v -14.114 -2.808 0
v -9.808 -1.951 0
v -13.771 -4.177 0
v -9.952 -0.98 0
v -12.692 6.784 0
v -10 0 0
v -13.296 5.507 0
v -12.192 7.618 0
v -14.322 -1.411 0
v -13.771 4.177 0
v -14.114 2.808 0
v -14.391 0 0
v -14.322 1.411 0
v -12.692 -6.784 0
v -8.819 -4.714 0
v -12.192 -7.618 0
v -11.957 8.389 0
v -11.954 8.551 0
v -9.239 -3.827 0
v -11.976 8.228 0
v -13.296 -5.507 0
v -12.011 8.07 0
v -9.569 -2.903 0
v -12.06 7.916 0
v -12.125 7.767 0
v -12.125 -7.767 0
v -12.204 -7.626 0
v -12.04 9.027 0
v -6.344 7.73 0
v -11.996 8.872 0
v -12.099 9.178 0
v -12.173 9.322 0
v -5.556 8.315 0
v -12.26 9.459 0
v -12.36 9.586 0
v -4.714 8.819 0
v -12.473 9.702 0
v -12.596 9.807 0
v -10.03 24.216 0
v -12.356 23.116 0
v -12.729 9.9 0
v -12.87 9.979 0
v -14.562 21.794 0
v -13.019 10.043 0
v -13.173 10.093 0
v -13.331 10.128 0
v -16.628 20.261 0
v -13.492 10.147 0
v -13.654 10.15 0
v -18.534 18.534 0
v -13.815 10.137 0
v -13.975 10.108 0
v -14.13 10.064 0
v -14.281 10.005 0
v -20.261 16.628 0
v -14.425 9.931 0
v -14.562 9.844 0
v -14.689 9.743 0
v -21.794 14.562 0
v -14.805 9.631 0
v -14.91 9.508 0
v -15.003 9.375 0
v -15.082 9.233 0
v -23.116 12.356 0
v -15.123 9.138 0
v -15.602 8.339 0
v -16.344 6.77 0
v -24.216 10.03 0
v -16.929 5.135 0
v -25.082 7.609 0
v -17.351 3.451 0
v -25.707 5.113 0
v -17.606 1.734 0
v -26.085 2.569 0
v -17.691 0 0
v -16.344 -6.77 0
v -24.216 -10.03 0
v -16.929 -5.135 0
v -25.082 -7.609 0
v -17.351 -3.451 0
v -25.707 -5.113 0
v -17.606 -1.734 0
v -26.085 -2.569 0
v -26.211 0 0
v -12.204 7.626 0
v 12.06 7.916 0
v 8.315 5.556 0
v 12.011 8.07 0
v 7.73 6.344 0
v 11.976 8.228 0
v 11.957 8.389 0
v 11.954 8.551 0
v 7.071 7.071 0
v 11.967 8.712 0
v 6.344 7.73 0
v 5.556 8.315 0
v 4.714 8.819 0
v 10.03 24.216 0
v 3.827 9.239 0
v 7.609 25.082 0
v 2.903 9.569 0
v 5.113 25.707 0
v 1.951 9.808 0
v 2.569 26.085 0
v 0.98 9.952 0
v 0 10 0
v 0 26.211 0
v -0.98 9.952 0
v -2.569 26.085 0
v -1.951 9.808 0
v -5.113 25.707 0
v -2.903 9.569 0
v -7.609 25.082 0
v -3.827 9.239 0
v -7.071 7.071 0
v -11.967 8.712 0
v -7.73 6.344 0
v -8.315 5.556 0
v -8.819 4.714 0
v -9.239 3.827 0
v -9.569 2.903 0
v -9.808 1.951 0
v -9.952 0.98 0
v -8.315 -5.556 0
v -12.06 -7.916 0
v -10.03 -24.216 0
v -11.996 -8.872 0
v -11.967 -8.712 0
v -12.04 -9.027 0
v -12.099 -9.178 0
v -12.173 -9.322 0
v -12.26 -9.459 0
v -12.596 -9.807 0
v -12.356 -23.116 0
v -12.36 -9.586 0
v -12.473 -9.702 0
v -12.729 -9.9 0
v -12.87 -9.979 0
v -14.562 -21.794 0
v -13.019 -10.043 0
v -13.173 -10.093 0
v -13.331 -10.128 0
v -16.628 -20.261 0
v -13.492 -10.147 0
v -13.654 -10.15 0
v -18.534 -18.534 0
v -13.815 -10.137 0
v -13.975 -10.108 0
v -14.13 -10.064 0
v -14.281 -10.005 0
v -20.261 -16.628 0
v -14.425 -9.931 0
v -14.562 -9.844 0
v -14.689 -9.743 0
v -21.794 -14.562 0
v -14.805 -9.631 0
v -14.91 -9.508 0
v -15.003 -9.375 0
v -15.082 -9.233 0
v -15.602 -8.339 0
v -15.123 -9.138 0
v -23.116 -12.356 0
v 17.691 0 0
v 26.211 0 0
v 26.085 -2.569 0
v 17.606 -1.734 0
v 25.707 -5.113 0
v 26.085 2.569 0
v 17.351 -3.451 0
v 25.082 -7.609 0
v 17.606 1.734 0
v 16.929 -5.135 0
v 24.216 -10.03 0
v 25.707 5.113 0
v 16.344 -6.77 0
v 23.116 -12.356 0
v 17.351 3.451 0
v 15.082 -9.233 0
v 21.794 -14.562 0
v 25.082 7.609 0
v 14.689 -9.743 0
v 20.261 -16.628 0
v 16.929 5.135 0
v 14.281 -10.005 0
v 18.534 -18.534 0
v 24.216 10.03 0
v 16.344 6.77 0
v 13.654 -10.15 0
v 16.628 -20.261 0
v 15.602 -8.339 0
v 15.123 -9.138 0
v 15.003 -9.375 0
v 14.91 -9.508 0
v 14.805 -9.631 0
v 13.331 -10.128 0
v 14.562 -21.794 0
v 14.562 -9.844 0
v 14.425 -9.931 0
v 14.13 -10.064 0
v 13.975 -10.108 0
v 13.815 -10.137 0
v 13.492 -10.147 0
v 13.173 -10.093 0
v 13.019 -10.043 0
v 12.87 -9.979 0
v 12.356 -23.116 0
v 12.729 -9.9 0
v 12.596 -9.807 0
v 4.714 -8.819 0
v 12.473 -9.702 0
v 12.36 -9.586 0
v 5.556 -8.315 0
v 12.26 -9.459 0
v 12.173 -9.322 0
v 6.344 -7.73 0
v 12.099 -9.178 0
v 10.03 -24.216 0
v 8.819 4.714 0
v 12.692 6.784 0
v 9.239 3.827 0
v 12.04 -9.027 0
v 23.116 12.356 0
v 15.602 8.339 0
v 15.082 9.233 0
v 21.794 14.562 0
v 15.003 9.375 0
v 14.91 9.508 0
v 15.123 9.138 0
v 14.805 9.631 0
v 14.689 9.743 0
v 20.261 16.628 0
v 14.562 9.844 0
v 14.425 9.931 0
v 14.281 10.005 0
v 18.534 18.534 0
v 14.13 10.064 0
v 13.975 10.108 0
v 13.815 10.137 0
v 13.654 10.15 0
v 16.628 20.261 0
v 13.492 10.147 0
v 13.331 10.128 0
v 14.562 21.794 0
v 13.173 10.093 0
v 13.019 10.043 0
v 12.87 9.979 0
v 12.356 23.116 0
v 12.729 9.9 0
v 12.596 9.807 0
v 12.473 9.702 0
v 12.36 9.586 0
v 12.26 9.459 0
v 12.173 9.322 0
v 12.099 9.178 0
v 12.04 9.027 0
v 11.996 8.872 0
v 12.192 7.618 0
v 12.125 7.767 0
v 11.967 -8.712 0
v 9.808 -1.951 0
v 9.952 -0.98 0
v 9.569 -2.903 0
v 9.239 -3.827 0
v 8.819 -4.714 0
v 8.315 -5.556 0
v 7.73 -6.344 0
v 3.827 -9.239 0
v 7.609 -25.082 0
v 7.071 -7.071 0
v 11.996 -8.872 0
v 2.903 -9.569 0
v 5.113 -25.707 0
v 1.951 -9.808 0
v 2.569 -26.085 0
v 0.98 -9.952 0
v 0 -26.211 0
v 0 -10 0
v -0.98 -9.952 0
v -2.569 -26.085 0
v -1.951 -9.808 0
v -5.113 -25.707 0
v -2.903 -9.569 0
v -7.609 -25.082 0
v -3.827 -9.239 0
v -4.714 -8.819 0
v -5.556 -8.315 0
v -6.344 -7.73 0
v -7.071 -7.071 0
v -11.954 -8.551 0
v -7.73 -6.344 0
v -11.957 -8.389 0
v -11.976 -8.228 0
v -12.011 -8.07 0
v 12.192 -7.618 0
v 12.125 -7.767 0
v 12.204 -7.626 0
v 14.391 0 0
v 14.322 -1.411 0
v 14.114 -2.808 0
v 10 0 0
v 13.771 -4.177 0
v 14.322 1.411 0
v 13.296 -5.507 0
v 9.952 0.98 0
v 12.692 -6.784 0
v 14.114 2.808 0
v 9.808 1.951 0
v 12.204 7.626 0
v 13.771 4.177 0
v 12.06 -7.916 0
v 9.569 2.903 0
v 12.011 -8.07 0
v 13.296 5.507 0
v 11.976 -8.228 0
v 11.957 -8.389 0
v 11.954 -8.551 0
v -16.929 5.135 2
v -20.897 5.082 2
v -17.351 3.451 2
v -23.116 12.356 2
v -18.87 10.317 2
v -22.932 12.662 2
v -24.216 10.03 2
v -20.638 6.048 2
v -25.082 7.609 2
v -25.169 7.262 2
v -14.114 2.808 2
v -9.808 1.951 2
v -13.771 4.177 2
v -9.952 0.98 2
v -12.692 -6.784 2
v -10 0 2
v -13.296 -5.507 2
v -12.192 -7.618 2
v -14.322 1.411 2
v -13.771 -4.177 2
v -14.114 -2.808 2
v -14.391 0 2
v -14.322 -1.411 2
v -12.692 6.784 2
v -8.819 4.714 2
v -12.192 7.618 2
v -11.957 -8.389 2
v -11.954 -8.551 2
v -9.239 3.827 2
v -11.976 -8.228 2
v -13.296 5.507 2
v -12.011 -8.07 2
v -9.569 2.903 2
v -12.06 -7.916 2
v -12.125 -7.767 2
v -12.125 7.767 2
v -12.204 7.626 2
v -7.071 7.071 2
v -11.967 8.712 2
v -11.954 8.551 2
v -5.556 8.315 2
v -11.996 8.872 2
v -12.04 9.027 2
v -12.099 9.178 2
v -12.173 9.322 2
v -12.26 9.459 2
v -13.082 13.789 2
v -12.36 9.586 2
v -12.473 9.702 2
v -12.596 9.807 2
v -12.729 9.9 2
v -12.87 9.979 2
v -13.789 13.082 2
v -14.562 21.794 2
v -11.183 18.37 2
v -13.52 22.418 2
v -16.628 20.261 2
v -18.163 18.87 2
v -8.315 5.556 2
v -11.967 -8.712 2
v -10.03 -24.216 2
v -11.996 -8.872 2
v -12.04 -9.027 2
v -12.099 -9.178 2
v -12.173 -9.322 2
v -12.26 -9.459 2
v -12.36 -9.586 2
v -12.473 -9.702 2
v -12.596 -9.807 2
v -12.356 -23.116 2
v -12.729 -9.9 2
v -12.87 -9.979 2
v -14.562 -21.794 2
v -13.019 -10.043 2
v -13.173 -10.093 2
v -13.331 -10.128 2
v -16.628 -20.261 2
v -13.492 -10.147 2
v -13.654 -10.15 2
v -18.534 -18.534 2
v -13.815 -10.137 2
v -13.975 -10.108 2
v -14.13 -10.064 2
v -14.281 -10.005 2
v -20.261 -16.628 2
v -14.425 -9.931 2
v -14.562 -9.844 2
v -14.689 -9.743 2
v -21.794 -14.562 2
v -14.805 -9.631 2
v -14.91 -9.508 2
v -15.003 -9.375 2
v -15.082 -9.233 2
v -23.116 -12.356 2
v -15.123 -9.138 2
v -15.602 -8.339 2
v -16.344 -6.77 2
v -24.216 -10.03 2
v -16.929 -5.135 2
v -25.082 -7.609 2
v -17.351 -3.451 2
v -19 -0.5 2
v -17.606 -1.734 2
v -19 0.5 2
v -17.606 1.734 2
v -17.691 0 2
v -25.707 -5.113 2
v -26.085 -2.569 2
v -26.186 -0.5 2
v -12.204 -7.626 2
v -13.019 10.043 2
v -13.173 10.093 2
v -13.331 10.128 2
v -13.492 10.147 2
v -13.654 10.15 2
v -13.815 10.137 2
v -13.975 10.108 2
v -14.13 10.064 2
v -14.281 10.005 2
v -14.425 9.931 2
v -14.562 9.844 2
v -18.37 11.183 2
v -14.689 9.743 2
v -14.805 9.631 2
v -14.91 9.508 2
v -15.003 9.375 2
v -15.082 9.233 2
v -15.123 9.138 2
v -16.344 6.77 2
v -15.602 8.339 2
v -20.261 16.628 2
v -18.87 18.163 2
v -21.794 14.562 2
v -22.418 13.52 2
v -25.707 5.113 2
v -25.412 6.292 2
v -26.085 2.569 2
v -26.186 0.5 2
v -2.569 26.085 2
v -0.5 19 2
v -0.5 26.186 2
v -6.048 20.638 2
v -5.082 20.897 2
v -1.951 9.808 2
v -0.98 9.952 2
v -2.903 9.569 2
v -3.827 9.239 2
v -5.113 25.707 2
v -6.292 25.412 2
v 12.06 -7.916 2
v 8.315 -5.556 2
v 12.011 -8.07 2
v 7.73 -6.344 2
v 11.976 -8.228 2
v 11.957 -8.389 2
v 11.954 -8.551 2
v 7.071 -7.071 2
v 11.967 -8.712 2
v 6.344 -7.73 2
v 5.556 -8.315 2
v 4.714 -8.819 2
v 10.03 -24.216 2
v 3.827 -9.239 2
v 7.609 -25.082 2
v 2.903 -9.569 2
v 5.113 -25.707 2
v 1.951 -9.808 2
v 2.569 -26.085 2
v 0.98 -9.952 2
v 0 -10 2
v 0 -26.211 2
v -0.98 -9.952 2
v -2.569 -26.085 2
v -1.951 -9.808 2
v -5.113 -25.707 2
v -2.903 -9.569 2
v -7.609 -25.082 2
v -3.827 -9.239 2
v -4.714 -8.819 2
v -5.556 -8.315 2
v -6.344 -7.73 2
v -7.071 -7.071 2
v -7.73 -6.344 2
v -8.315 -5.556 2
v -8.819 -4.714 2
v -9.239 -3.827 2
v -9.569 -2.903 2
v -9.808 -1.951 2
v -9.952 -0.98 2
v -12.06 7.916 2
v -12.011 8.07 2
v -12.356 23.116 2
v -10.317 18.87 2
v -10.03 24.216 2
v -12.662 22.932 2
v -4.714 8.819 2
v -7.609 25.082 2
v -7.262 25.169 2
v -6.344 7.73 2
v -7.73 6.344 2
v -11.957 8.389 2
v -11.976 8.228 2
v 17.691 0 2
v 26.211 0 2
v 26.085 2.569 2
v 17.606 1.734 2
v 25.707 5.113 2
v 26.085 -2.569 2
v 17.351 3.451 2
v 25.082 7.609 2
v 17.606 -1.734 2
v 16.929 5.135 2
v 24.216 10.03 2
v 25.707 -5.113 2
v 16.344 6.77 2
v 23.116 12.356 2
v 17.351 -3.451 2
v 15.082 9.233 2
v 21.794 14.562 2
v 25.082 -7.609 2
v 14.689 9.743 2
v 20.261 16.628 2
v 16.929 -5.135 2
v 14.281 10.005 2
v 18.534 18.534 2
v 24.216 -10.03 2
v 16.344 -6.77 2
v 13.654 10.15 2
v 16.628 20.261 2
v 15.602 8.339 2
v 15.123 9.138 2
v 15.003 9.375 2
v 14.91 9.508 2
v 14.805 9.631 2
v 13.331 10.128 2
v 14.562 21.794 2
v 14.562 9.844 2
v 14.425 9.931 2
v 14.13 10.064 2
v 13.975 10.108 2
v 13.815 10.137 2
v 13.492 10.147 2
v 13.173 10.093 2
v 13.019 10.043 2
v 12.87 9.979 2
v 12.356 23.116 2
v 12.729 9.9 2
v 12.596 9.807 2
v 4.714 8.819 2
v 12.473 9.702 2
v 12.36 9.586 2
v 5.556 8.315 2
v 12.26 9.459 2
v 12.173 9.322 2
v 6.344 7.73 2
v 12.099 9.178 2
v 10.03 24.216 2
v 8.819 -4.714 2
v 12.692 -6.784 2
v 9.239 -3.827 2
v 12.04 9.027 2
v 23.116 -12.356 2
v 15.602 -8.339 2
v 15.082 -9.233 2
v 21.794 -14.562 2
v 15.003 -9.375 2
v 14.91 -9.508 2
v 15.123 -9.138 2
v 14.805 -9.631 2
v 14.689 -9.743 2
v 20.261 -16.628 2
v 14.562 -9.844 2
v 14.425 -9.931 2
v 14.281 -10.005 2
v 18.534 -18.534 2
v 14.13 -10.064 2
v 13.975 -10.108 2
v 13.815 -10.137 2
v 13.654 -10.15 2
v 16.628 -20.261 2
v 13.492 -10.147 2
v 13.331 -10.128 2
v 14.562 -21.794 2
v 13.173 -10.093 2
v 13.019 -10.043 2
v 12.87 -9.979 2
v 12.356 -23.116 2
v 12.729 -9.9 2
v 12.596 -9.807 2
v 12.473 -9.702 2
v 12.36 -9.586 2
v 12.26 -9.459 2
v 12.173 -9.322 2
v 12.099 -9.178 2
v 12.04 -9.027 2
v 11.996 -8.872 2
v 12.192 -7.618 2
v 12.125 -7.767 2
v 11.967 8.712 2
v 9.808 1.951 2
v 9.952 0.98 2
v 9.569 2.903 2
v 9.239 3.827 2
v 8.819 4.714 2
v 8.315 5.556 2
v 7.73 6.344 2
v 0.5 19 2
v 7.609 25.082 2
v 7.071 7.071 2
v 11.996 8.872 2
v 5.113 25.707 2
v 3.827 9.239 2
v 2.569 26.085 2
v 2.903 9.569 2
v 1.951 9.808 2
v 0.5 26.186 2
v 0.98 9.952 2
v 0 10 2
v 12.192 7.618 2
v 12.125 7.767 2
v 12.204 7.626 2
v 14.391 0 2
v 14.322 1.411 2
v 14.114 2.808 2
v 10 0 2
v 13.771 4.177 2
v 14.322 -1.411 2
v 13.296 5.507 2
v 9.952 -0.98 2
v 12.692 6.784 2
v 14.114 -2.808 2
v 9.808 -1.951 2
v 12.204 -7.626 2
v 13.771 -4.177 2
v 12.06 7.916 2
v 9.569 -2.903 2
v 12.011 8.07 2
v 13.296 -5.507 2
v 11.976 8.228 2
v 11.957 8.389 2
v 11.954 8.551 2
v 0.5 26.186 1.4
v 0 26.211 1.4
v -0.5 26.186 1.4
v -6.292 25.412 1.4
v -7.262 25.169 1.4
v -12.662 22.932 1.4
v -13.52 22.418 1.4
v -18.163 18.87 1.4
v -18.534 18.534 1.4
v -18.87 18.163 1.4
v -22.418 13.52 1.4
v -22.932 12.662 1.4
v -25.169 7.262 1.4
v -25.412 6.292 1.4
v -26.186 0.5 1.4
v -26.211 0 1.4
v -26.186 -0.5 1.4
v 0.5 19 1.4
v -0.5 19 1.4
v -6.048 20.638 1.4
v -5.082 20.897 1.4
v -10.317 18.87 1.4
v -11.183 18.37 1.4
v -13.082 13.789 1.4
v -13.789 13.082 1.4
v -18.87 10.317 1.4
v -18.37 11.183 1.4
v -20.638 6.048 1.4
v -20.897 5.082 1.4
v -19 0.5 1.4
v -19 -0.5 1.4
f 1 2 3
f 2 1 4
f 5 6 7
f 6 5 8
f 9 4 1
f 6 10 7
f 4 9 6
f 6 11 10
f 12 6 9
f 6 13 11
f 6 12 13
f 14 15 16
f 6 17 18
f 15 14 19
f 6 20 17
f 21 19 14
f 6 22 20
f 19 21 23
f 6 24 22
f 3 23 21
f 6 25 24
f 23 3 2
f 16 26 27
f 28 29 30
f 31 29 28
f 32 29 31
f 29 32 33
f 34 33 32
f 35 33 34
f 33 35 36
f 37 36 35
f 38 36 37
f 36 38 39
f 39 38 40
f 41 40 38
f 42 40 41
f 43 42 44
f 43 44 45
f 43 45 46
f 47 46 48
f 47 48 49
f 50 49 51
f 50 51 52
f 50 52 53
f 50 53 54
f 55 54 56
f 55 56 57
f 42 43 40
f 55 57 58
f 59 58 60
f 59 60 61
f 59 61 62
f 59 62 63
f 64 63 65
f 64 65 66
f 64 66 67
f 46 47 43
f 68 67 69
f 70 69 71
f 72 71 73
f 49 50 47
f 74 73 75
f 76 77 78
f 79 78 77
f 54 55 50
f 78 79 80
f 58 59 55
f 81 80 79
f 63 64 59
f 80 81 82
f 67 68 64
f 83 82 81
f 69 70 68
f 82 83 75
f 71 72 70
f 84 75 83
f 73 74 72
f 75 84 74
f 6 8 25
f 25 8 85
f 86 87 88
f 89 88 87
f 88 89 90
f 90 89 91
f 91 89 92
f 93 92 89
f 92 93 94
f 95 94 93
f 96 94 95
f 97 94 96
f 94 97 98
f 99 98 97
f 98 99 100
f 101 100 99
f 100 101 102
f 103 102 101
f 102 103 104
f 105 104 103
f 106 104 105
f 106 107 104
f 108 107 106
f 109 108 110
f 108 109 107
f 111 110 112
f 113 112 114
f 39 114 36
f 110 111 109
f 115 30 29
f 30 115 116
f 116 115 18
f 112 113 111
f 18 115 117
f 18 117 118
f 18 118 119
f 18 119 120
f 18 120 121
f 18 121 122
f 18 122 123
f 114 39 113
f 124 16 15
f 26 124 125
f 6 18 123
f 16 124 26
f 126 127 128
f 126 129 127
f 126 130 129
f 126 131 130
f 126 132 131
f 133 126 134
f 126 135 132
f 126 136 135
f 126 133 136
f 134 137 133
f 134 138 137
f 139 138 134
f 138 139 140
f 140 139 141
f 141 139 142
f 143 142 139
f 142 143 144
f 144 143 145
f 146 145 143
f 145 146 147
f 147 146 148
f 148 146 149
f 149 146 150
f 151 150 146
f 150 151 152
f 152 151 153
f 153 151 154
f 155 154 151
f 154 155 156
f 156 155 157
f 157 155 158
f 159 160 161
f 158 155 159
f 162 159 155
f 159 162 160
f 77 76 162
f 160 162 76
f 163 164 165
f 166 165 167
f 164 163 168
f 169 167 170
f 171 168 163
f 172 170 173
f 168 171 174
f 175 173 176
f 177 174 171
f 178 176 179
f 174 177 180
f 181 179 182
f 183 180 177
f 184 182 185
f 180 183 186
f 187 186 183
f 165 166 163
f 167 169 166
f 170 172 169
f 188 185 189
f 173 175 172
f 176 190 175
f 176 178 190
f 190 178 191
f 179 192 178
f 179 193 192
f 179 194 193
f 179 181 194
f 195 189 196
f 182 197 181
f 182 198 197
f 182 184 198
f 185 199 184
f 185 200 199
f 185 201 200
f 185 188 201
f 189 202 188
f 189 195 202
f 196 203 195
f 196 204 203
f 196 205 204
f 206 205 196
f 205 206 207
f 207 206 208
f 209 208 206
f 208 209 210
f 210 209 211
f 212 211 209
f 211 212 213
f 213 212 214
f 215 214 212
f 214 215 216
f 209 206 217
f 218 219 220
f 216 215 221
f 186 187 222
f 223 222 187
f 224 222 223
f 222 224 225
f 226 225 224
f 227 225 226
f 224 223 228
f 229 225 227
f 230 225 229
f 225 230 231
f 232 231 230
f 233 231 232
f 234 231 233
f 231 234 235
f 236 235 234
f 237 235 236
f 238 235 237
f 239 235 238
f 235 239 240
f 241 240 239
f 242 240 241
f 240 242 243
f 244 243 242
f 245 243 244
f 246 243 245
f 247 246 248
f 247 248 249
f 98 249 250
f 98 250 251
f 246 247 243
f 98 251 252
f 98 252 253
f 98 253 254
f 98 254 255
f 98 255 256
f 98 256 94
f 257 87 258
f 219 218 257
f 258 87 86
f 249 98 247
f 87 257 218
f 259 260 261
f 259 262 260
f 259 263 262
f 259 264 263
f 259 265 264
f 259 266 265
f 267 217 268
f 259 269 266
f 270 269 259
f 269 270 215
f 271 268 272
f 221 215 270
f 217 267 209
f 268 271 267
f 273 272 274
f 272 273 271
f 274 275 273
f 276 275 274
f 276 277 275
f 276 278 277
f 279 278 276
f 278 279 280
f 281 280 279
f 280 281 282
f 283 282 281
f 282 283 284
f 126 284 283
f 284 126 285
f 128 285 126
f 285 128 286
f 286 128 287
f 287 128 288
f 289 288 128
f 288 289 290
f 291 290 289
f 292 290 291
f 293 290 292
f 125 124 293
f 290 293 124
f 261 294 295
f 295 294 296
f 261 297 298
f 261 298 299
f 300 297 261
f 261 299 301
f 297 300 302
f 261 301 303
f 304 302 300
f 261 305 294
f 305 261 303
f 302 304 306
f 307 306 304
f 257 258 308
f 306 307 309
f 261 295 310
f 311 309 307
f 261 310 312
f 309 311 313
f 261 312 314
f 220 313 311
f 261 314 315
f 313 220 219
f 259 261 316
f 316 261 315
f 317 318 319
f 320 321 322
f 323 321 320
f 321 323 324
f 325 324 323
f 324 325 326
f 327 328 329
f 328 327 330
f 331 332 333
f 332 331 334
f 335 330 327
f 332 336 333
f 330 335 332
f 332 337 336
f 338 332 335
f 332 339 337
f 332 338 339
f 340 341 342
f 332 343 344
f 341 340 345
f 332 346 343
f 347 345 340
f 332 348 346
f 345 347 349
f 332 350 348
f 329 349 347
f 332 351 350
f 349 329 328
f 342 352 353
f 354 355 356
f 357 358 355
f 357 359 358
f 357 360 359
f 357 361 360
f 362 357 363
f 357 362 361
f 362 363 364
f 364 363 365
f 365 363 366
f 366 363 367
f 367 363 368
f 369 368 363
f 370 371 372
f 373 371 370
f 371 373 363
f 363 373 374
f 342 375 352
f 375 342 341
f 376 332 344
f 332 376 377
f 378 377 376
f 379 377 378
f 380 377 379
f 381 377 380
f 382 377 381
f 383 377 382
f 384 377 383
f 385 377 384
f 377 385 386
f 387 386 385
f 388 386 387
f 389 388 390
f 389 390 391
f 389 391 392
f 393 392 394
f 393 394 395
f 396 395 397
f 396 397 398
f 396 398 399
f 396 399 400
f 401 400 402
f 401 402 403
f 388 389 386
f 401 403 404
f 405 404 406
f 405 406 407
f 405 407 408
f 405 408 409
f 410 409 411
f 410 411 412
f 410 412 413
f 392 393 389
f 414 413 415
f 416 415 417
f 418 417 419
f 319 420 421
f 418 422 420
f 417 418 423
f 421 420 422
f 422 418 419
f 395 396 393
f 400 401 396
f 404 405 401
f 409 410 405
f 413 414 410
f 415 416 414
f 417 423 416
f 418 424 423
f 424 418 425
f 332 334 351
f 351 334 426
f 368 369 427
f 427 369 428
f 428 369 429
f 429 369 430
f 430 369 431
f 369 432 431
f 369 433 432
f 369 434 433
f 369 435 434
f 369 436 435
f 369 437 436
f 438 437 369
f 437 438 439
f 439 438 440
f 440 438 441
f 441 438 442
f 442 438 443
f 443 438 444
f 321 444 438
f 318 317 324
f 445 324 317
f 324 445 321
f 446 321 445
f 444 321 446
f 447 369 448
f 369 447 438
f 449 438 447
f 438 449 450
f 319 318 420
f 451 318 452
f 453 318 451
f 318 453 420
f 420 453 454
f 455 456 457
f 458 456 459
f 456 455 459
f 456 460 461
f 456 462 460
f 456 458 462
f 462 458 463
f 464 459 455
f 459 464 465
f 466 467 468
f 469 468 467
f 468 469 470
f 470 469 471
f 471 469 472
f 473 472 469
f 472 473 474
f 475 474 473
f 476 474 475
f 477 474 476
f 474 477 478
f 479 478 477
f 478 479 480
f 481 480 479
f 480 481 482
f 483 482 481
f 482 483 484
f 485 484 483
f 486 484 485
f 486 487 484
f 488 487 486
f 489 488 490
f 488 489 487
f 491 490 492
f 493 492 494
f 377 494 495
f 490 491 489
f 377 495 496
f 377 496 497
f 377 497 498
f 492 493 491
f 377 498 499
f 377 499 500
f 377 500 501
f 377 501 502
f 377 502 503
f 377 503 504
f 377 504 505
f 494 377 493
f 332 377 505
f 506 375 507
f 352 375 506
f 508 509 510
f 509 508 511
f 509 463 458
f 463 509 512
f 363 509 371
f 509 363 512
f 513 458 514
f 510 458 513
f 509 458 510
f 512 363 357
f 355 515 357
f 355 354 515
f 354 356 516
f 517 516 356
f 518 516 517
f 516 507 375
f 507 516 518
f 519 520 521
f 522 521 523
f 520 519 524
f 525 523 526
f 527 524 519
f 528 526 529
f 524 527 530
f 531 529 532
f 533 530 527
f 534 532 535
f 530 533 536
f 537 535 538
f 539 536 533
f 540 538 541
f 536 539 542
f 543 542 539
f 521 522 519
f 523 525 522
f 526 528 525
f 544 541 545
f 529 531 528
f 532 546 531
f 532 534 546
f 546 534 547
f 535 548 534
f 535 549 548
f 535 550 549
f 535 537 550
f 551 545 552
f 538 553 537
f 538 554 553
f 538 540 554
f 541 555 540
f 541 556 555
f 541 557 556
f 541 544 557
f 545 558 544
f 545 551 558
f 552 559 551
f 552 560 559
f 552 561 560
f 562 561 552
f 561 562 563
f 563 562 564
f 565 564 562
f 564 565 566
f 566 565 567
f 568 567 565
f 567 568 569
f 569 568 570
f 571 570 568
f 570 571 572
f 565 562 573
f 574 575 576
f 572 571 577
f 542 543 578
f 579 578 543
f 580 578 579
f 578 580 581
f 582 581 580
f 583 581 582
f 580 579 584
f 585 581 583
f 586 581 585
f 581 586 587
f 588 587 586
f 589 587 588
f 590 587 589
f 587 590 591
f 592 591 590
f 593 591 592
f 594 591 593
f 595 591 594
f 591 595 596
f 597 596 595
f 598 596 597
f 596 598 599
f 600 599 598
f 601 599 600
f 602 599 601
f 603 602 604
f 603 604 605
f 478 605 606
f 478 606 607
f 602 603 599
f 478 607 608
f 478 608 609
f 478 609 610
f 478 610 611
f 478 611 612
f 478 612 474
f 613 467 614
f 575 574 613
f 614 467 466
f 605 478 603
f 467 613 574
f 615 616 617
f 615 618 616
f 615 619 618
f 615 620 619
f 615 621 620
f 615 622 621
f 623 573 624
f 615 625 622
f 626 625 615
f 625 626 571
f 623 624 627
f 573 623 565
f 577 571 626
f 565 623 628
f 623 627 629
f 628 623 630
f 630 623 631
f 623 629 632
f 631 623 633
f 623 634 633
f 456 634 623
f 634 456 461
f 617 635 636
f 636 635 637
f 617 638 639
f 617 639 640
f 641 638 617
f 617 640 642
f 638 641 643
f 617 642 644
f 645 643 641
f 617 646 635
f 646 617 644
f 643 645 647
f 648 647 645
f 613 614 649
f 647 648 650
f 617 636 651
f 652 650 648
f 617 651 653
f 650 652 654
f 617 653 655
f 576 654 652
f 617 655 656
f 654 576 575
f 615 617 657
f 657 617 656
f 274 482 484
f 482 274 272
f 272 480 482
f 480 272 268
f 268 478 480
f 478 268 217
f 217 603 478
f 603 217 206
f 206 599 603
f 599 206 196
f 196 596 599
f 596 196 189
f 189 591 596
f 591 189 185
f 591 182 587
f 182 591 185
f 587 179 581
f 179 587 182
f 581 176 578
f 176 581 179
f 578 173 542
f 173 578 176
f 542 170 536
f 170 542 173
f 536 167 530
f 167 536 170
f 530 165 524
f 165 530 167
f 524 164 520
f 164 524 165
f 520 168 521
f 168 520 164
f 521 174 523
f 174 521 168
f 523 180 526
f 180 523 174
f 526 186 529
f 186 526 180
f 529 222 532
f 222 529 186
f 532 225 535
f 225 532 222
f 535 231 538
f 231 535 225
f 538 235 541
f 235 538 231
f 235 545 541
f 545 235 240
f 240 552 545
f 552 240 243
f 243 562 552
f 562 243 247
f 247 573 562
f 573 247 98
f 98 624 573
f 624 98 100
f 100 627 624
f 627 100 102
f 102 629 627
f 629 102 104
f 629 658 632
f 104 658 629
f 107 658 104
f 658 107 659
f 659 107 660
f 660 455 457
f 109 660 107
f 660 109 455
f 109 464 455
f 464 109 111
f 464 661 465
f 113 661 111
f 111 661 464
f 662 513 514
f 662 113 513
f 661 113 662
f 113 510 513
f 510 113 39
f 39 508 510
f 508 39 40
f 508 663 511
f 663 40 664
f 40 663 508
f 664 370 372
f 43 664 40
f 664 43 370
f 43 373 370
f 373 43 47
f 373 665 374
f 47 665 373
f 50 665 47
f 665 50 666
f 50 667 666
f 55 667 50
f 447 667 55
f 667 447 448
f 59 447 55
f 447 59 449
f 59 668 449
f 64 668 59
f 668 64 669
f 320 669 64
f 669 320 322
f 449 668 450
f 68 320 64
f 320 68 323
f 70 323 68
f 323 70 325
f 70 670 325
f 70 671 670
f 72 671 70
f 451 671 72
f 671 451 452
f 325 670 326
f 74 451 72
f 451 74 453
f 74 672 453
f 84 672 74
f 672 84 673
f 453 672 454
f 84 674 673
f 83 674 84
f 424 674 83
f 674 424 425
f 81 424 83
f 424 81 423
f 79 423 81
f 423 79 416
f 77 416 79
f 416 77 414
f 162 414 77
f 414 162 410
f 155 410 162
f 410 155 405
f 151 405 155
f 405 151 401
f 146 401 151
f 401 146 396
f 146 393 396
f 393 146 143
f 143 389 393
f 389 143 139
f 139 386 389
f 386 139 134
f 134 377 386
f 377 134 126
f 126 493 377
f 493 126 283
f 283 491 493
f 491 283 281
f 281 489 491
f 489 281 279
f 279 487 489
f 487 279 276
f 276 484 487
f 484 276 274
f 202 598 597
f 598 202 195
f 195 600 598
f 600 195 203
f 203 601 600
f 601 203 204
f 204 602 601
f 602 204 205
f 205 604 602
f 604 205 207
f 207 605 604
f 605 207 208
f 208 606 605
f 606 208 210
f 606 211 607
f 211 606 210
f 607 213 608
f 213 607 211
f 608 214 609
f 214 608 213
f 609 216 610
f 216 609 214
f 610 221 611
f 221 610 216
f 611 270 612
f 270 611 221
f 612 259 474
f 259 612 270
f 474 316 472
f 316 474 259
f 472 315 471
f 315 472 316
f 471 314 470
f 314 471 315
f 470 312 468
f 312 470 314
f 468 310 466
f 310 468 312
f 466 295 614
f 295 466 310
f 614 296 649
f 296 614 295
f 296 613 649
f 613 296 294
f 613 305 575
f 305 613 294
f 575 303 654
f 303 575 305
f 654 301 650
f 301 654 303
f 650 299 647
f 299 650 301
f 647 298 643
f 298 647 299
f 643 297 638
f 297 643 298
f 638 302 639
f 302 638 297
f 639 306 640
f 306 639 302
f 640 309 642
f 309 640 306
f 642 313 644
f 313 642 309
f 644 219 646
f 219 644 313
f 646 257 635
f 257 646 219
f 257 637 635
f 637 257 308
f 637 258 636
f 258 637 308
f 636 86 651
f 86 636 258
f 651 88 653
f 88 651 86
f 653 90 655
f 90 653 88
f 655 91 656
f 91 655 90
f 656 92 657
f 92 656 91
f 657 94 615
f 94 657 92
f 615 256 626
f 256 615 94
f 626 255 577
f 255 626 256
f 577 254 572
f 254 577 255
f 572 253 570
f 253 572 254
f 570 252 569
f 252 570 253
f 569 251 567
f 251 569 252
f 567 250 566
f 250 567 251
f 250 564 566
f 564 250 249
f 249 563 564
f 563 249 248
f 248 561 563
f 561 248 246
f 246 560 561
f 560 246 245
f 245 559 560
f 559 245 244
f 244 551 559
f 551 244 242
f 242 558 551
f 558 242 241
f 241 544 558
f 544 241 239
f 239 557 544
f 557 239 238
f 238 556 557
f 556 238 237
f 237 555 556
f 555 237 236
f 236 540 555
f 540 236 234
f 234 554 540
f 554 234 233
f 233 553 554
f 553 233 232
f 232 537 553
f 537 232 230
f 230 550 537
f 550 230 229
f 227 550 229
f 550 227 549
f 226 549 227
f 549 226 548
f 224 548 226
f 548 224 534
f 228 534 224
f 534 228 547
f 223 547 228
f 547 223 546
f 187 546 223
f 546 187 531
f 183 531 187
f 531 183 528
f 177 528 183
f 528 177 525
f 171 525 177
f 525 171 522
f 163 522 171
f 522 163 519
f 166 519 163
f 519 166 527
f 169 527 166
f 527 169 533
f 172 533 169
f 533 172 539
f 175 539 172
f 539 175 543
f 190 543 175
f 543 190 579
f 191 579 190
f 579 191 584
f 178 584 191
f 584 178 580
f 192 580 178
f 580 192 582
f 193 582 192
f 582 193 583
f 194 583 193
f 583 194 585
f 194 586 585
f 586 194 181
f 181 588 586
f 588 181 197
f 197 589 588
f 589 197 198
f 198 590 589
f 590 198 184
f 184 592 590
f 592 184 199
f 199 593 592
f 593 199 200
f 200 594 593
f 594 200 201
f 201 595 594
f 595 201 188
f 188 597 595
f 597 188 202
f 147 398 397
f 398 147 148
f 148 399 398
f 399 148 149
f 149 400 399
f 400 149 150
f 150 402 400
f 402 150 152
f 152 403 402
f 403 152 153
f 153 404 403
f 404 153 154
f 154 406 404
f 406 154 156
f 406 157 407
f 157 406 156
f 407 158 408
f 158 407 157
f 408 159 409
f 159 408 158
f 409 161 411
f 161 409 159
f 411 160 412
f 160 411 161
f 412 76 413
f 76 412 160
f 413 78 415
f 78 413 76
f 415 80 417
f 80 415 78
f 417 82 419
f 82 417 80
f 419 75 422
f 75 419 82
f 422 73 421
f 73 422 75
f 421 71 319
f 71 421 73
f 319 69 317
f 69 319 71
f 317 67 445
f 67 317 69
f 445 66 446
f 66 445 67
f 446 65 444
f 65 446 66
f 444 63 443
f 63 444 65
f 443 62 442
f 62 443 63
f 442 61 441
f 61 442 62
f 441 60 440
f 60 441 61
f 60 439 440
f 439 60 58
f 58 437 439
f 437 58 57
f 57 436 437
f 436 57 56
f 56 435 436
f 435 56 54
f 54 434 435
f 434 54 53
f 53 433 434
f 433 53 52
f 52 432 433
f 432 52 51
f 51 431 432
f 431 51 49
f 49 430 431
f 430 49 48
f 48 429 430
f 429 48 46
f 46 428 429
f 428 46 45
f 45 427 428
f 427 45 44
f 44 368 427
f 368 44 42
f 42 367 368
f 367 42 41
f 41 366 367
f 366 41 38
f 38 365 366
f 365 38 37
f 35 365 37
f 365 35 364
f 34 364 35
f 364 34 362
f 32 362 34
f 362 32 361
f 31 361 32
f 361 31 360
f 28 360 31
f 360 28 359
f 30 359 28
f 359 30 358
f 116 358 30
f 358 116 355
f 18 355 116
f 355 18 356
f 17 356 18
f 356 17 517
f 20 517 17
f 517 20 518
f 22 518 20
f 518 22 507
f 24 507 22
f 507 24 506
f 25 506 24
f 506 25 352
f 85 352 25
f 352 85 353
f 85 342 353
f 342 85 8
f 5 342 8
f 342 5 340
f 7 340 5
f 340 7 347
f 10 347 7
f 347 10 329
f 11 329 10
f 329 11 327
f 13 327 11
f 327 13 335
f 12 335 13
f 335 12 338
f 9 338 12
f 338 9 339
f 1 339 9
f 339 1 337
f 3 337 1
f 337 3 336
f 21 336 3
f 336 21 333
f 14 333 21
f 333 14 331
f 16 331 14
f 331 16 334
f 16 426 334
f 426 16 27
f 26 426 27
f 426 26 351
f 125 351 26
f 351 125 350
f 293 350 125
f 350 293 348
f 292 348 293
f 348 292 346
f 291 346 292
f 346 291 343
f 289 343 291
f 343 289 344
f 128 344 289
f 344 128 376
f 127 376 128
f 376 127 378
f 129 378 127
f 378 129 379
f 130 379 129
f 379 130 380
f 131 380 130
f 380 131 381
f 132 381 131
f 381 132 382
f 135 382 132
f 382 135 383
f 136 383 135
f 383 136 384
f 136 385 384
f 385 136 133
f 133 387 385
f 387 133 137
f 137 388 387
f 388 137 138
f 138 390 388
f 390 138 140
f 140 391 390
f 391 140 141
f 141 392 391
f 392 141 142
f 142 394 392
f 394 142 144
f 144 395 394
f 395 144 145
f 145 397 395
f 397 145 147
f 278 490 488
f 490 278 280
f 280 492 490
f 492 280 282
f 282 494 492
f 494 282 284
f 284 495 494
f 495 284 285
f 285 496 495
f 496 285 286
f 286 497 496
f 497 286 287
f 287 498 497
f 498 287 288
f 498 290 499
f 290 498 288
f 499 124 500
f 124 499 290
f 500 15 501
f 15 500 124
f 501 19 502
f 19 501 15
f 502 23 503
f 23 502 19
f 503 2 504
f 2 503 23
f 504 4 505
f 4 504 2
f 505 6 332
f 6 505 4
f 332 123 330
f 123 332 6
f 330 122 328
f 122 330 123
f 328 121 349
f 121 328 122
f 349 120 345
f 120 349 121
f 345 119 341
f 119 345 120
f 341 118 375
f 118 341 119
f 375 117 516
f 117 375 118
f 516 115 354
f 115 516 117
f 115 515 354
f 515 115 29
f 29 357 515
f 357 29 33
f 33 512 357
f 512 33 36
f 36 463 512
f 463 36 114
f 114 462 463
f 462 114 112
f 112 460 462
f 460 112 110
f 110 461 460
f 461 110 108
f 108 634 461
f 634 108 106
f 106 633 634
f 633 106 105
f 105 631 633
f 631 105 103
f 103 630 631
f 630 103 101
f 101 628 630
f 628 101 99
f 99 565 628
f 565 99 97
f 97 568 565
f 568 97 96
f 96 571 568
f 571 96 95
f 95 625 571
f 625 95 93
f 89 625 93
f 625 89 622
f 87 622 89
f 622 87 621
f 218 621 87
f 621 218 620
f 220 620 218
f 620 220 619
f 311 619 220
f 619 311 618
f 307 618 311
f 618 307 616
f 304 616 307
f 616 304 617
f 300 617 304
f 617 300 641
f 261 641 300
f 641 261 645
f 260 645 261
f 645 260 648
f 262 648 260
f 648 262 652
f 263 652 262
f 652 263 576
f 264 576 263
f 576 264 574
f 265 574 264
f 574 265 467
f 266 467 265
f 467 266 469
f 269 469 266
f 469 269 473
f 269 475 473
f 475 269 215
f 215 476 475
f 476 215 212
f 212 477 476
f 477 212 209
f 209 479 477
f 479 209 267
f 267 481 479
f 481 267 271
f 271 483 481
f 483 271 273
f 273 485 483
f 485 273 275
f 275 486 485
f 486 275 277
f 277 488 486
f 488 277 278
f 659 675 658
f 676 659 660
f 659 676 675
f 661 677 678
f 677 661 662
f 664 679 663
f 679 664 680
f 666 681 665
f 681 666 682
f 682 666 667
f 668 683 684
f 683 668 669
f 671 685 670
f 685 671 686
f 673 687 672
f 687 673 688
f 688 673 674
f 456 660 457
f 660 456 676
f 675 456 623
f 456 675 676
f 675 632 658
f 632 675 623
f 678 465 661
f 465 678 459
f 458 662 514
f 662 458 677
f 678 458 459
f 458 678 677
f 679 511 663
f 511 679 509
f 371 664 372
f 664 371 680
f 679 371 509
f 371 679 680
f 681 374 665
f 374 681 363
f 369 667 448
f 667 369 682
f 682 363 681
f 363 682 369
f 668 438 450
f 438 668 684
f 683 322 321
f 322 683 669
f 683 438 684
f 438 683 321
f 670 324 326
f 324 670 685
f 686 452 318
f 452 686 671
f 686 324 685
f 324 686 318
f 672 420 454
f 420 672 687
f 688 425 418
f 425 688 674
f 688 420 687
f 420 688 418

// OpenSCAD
// ==========================================
// Proyecto: piezas3D – Puntero láser estelar
// Componente: Disco de la escala de altura
// Descripción: Anillo plano que apoya en la cara exterior de la polea de altura y gira con ella. Lleva
//              grabadas rayas cada paso_escala grados, de 0° a angulo_escala_max, que se leen contra la
//              aguja de índice del brazo del motor. Se fija con 2 tornillos M3 autorroscantes que pasan
//              por 2 ranuras en arco: así el cero se pone una vez al armar, porque el ángulo de la polea
//              respecto de la cuna depende del apriete del perno M8 (research 012, R1).
//              Se imprime plano, con la escala hacia arriba (mejor en un color claro).
// ==========================================

// --- PARÁMETROS Y CONSTANTES ---
include <puntero_laser_parametros.scad>

/* [Hidden] */
r_raya_larga = 19;                       // inicio de las rayas múltiplo de 45°
r_raya_corta = 21.5;                     // inicio de las demás
ancho_ranura_disco = m3_d + holgura_tornillo_m3;
angulos_ranuras = [0, 180];              // coinciden con los agujeros guía de la polea
// En el conjunto (rotate([0, 90, 0])), el −X de la pieza queda arriba (la aguja) y el +Y hacia +Y. Con el
// láser a 0°, la raya de un ángulo a va a a grados de la vertical hacia +Y: al subir el láser a grados,
// la polea gira y la lleva a la aguja (research 012, R7).
function angulo_raya(a) = 180 - a;
angulos_escala = [for (a = [0:paso_escala:angulo_escala_max]) a];

// --- VALIDACIONES (M-06) ---
assert(giro_ranura_disco >= 30,
       str("giro_ranura_disco=", giro_ranura_disco, ": las ranuras no cubren el escalón de 60° del hexágono",
           " del perno (hace falta ±30°)"));
assert(r_raya_larga - (r_agujeros_disco + ancho_ranura_disco/2) >= espesor_min_pared,
       "r_raya_larga: las rayas largas tocan las ranuras del disco");
assert(r_agujeros_disco - ancho_ranura_disco/2 - d_interior_disco_escala/2 >= espesor_min_pared,
       "d_interior_disco_escala: el agujero central toca las ranuras del disco");
assert(profundidad_grabado <= espesor_disco_escala - espesor_min_pared/2,
       "profundidad_grabado: las rayas atraviesan casi todo el disco");
assert(2*r_exterior_disco_escala <= cama_max, "el disco no entra en la cama");

// --- MÓDULOS PRINCIPALES Y ENSAMBLAJE ---
ensamblaje_principal();

module ensamblaje_principal() {
    pieza_disco_escala();
}

// z = 0: cara que apoya en la polea; la escala queda en z = espesor_disco_escala.
module pieza_disco_escala() {
    difference() {
        linear_extrude(height = espesor_disco_escala)
            difference() {
                circle(r = r_exterior_disco_escala);
                circle(d = d_interior_disco_escala);
                for (a = angulos_ranuras) ranura_arco(a);
            }
        escala();
    }
}

// Ranura en arco de ±giro_ranura_disco centrada en el ángulo a, a r_agujeros_disco
module ranura_arco(a) {
    rotate(a) {
        intersection() {
            difference() {
                circle(r = r_agujeros_disco + ancho_ranura_disco/2);
                circle(r = r_agujeros_disco - ancho_ranura_disco/2);
            }
            r_sector = 2*r_exterior_disco_escala;
            polygon(concat([[0, 0]], [for (g = [-giro_ranura_disco:2:giro_ranura_disco])
                                         r_sector*[cos(g), sin(g)]]));
        }
        for (s = [-1, 1]) rotate(s*giro_ranura_disco) translate([r_agujeros_disco, 0]) circle(d = ancho_ranura_disco);
    }
}

// Rayas grabadas desde la cara de arriba hasta el borde
module escala() {
    translate([0, 0, espesor_disco_escala - profundidad_grabado])
        linear_extrude(height = profundidad_grabado + 1)
            for (a = angulos_escala) {
                r0 = a % 45 == 0 ? r_raya_larga : r_raya_corta;
                rotate(angulo_raya(a)) translate([r0, -ancho_raya/2]) square([r_exterior_disco_escala - r0 + 1, ancho_raya]);
            }
}
